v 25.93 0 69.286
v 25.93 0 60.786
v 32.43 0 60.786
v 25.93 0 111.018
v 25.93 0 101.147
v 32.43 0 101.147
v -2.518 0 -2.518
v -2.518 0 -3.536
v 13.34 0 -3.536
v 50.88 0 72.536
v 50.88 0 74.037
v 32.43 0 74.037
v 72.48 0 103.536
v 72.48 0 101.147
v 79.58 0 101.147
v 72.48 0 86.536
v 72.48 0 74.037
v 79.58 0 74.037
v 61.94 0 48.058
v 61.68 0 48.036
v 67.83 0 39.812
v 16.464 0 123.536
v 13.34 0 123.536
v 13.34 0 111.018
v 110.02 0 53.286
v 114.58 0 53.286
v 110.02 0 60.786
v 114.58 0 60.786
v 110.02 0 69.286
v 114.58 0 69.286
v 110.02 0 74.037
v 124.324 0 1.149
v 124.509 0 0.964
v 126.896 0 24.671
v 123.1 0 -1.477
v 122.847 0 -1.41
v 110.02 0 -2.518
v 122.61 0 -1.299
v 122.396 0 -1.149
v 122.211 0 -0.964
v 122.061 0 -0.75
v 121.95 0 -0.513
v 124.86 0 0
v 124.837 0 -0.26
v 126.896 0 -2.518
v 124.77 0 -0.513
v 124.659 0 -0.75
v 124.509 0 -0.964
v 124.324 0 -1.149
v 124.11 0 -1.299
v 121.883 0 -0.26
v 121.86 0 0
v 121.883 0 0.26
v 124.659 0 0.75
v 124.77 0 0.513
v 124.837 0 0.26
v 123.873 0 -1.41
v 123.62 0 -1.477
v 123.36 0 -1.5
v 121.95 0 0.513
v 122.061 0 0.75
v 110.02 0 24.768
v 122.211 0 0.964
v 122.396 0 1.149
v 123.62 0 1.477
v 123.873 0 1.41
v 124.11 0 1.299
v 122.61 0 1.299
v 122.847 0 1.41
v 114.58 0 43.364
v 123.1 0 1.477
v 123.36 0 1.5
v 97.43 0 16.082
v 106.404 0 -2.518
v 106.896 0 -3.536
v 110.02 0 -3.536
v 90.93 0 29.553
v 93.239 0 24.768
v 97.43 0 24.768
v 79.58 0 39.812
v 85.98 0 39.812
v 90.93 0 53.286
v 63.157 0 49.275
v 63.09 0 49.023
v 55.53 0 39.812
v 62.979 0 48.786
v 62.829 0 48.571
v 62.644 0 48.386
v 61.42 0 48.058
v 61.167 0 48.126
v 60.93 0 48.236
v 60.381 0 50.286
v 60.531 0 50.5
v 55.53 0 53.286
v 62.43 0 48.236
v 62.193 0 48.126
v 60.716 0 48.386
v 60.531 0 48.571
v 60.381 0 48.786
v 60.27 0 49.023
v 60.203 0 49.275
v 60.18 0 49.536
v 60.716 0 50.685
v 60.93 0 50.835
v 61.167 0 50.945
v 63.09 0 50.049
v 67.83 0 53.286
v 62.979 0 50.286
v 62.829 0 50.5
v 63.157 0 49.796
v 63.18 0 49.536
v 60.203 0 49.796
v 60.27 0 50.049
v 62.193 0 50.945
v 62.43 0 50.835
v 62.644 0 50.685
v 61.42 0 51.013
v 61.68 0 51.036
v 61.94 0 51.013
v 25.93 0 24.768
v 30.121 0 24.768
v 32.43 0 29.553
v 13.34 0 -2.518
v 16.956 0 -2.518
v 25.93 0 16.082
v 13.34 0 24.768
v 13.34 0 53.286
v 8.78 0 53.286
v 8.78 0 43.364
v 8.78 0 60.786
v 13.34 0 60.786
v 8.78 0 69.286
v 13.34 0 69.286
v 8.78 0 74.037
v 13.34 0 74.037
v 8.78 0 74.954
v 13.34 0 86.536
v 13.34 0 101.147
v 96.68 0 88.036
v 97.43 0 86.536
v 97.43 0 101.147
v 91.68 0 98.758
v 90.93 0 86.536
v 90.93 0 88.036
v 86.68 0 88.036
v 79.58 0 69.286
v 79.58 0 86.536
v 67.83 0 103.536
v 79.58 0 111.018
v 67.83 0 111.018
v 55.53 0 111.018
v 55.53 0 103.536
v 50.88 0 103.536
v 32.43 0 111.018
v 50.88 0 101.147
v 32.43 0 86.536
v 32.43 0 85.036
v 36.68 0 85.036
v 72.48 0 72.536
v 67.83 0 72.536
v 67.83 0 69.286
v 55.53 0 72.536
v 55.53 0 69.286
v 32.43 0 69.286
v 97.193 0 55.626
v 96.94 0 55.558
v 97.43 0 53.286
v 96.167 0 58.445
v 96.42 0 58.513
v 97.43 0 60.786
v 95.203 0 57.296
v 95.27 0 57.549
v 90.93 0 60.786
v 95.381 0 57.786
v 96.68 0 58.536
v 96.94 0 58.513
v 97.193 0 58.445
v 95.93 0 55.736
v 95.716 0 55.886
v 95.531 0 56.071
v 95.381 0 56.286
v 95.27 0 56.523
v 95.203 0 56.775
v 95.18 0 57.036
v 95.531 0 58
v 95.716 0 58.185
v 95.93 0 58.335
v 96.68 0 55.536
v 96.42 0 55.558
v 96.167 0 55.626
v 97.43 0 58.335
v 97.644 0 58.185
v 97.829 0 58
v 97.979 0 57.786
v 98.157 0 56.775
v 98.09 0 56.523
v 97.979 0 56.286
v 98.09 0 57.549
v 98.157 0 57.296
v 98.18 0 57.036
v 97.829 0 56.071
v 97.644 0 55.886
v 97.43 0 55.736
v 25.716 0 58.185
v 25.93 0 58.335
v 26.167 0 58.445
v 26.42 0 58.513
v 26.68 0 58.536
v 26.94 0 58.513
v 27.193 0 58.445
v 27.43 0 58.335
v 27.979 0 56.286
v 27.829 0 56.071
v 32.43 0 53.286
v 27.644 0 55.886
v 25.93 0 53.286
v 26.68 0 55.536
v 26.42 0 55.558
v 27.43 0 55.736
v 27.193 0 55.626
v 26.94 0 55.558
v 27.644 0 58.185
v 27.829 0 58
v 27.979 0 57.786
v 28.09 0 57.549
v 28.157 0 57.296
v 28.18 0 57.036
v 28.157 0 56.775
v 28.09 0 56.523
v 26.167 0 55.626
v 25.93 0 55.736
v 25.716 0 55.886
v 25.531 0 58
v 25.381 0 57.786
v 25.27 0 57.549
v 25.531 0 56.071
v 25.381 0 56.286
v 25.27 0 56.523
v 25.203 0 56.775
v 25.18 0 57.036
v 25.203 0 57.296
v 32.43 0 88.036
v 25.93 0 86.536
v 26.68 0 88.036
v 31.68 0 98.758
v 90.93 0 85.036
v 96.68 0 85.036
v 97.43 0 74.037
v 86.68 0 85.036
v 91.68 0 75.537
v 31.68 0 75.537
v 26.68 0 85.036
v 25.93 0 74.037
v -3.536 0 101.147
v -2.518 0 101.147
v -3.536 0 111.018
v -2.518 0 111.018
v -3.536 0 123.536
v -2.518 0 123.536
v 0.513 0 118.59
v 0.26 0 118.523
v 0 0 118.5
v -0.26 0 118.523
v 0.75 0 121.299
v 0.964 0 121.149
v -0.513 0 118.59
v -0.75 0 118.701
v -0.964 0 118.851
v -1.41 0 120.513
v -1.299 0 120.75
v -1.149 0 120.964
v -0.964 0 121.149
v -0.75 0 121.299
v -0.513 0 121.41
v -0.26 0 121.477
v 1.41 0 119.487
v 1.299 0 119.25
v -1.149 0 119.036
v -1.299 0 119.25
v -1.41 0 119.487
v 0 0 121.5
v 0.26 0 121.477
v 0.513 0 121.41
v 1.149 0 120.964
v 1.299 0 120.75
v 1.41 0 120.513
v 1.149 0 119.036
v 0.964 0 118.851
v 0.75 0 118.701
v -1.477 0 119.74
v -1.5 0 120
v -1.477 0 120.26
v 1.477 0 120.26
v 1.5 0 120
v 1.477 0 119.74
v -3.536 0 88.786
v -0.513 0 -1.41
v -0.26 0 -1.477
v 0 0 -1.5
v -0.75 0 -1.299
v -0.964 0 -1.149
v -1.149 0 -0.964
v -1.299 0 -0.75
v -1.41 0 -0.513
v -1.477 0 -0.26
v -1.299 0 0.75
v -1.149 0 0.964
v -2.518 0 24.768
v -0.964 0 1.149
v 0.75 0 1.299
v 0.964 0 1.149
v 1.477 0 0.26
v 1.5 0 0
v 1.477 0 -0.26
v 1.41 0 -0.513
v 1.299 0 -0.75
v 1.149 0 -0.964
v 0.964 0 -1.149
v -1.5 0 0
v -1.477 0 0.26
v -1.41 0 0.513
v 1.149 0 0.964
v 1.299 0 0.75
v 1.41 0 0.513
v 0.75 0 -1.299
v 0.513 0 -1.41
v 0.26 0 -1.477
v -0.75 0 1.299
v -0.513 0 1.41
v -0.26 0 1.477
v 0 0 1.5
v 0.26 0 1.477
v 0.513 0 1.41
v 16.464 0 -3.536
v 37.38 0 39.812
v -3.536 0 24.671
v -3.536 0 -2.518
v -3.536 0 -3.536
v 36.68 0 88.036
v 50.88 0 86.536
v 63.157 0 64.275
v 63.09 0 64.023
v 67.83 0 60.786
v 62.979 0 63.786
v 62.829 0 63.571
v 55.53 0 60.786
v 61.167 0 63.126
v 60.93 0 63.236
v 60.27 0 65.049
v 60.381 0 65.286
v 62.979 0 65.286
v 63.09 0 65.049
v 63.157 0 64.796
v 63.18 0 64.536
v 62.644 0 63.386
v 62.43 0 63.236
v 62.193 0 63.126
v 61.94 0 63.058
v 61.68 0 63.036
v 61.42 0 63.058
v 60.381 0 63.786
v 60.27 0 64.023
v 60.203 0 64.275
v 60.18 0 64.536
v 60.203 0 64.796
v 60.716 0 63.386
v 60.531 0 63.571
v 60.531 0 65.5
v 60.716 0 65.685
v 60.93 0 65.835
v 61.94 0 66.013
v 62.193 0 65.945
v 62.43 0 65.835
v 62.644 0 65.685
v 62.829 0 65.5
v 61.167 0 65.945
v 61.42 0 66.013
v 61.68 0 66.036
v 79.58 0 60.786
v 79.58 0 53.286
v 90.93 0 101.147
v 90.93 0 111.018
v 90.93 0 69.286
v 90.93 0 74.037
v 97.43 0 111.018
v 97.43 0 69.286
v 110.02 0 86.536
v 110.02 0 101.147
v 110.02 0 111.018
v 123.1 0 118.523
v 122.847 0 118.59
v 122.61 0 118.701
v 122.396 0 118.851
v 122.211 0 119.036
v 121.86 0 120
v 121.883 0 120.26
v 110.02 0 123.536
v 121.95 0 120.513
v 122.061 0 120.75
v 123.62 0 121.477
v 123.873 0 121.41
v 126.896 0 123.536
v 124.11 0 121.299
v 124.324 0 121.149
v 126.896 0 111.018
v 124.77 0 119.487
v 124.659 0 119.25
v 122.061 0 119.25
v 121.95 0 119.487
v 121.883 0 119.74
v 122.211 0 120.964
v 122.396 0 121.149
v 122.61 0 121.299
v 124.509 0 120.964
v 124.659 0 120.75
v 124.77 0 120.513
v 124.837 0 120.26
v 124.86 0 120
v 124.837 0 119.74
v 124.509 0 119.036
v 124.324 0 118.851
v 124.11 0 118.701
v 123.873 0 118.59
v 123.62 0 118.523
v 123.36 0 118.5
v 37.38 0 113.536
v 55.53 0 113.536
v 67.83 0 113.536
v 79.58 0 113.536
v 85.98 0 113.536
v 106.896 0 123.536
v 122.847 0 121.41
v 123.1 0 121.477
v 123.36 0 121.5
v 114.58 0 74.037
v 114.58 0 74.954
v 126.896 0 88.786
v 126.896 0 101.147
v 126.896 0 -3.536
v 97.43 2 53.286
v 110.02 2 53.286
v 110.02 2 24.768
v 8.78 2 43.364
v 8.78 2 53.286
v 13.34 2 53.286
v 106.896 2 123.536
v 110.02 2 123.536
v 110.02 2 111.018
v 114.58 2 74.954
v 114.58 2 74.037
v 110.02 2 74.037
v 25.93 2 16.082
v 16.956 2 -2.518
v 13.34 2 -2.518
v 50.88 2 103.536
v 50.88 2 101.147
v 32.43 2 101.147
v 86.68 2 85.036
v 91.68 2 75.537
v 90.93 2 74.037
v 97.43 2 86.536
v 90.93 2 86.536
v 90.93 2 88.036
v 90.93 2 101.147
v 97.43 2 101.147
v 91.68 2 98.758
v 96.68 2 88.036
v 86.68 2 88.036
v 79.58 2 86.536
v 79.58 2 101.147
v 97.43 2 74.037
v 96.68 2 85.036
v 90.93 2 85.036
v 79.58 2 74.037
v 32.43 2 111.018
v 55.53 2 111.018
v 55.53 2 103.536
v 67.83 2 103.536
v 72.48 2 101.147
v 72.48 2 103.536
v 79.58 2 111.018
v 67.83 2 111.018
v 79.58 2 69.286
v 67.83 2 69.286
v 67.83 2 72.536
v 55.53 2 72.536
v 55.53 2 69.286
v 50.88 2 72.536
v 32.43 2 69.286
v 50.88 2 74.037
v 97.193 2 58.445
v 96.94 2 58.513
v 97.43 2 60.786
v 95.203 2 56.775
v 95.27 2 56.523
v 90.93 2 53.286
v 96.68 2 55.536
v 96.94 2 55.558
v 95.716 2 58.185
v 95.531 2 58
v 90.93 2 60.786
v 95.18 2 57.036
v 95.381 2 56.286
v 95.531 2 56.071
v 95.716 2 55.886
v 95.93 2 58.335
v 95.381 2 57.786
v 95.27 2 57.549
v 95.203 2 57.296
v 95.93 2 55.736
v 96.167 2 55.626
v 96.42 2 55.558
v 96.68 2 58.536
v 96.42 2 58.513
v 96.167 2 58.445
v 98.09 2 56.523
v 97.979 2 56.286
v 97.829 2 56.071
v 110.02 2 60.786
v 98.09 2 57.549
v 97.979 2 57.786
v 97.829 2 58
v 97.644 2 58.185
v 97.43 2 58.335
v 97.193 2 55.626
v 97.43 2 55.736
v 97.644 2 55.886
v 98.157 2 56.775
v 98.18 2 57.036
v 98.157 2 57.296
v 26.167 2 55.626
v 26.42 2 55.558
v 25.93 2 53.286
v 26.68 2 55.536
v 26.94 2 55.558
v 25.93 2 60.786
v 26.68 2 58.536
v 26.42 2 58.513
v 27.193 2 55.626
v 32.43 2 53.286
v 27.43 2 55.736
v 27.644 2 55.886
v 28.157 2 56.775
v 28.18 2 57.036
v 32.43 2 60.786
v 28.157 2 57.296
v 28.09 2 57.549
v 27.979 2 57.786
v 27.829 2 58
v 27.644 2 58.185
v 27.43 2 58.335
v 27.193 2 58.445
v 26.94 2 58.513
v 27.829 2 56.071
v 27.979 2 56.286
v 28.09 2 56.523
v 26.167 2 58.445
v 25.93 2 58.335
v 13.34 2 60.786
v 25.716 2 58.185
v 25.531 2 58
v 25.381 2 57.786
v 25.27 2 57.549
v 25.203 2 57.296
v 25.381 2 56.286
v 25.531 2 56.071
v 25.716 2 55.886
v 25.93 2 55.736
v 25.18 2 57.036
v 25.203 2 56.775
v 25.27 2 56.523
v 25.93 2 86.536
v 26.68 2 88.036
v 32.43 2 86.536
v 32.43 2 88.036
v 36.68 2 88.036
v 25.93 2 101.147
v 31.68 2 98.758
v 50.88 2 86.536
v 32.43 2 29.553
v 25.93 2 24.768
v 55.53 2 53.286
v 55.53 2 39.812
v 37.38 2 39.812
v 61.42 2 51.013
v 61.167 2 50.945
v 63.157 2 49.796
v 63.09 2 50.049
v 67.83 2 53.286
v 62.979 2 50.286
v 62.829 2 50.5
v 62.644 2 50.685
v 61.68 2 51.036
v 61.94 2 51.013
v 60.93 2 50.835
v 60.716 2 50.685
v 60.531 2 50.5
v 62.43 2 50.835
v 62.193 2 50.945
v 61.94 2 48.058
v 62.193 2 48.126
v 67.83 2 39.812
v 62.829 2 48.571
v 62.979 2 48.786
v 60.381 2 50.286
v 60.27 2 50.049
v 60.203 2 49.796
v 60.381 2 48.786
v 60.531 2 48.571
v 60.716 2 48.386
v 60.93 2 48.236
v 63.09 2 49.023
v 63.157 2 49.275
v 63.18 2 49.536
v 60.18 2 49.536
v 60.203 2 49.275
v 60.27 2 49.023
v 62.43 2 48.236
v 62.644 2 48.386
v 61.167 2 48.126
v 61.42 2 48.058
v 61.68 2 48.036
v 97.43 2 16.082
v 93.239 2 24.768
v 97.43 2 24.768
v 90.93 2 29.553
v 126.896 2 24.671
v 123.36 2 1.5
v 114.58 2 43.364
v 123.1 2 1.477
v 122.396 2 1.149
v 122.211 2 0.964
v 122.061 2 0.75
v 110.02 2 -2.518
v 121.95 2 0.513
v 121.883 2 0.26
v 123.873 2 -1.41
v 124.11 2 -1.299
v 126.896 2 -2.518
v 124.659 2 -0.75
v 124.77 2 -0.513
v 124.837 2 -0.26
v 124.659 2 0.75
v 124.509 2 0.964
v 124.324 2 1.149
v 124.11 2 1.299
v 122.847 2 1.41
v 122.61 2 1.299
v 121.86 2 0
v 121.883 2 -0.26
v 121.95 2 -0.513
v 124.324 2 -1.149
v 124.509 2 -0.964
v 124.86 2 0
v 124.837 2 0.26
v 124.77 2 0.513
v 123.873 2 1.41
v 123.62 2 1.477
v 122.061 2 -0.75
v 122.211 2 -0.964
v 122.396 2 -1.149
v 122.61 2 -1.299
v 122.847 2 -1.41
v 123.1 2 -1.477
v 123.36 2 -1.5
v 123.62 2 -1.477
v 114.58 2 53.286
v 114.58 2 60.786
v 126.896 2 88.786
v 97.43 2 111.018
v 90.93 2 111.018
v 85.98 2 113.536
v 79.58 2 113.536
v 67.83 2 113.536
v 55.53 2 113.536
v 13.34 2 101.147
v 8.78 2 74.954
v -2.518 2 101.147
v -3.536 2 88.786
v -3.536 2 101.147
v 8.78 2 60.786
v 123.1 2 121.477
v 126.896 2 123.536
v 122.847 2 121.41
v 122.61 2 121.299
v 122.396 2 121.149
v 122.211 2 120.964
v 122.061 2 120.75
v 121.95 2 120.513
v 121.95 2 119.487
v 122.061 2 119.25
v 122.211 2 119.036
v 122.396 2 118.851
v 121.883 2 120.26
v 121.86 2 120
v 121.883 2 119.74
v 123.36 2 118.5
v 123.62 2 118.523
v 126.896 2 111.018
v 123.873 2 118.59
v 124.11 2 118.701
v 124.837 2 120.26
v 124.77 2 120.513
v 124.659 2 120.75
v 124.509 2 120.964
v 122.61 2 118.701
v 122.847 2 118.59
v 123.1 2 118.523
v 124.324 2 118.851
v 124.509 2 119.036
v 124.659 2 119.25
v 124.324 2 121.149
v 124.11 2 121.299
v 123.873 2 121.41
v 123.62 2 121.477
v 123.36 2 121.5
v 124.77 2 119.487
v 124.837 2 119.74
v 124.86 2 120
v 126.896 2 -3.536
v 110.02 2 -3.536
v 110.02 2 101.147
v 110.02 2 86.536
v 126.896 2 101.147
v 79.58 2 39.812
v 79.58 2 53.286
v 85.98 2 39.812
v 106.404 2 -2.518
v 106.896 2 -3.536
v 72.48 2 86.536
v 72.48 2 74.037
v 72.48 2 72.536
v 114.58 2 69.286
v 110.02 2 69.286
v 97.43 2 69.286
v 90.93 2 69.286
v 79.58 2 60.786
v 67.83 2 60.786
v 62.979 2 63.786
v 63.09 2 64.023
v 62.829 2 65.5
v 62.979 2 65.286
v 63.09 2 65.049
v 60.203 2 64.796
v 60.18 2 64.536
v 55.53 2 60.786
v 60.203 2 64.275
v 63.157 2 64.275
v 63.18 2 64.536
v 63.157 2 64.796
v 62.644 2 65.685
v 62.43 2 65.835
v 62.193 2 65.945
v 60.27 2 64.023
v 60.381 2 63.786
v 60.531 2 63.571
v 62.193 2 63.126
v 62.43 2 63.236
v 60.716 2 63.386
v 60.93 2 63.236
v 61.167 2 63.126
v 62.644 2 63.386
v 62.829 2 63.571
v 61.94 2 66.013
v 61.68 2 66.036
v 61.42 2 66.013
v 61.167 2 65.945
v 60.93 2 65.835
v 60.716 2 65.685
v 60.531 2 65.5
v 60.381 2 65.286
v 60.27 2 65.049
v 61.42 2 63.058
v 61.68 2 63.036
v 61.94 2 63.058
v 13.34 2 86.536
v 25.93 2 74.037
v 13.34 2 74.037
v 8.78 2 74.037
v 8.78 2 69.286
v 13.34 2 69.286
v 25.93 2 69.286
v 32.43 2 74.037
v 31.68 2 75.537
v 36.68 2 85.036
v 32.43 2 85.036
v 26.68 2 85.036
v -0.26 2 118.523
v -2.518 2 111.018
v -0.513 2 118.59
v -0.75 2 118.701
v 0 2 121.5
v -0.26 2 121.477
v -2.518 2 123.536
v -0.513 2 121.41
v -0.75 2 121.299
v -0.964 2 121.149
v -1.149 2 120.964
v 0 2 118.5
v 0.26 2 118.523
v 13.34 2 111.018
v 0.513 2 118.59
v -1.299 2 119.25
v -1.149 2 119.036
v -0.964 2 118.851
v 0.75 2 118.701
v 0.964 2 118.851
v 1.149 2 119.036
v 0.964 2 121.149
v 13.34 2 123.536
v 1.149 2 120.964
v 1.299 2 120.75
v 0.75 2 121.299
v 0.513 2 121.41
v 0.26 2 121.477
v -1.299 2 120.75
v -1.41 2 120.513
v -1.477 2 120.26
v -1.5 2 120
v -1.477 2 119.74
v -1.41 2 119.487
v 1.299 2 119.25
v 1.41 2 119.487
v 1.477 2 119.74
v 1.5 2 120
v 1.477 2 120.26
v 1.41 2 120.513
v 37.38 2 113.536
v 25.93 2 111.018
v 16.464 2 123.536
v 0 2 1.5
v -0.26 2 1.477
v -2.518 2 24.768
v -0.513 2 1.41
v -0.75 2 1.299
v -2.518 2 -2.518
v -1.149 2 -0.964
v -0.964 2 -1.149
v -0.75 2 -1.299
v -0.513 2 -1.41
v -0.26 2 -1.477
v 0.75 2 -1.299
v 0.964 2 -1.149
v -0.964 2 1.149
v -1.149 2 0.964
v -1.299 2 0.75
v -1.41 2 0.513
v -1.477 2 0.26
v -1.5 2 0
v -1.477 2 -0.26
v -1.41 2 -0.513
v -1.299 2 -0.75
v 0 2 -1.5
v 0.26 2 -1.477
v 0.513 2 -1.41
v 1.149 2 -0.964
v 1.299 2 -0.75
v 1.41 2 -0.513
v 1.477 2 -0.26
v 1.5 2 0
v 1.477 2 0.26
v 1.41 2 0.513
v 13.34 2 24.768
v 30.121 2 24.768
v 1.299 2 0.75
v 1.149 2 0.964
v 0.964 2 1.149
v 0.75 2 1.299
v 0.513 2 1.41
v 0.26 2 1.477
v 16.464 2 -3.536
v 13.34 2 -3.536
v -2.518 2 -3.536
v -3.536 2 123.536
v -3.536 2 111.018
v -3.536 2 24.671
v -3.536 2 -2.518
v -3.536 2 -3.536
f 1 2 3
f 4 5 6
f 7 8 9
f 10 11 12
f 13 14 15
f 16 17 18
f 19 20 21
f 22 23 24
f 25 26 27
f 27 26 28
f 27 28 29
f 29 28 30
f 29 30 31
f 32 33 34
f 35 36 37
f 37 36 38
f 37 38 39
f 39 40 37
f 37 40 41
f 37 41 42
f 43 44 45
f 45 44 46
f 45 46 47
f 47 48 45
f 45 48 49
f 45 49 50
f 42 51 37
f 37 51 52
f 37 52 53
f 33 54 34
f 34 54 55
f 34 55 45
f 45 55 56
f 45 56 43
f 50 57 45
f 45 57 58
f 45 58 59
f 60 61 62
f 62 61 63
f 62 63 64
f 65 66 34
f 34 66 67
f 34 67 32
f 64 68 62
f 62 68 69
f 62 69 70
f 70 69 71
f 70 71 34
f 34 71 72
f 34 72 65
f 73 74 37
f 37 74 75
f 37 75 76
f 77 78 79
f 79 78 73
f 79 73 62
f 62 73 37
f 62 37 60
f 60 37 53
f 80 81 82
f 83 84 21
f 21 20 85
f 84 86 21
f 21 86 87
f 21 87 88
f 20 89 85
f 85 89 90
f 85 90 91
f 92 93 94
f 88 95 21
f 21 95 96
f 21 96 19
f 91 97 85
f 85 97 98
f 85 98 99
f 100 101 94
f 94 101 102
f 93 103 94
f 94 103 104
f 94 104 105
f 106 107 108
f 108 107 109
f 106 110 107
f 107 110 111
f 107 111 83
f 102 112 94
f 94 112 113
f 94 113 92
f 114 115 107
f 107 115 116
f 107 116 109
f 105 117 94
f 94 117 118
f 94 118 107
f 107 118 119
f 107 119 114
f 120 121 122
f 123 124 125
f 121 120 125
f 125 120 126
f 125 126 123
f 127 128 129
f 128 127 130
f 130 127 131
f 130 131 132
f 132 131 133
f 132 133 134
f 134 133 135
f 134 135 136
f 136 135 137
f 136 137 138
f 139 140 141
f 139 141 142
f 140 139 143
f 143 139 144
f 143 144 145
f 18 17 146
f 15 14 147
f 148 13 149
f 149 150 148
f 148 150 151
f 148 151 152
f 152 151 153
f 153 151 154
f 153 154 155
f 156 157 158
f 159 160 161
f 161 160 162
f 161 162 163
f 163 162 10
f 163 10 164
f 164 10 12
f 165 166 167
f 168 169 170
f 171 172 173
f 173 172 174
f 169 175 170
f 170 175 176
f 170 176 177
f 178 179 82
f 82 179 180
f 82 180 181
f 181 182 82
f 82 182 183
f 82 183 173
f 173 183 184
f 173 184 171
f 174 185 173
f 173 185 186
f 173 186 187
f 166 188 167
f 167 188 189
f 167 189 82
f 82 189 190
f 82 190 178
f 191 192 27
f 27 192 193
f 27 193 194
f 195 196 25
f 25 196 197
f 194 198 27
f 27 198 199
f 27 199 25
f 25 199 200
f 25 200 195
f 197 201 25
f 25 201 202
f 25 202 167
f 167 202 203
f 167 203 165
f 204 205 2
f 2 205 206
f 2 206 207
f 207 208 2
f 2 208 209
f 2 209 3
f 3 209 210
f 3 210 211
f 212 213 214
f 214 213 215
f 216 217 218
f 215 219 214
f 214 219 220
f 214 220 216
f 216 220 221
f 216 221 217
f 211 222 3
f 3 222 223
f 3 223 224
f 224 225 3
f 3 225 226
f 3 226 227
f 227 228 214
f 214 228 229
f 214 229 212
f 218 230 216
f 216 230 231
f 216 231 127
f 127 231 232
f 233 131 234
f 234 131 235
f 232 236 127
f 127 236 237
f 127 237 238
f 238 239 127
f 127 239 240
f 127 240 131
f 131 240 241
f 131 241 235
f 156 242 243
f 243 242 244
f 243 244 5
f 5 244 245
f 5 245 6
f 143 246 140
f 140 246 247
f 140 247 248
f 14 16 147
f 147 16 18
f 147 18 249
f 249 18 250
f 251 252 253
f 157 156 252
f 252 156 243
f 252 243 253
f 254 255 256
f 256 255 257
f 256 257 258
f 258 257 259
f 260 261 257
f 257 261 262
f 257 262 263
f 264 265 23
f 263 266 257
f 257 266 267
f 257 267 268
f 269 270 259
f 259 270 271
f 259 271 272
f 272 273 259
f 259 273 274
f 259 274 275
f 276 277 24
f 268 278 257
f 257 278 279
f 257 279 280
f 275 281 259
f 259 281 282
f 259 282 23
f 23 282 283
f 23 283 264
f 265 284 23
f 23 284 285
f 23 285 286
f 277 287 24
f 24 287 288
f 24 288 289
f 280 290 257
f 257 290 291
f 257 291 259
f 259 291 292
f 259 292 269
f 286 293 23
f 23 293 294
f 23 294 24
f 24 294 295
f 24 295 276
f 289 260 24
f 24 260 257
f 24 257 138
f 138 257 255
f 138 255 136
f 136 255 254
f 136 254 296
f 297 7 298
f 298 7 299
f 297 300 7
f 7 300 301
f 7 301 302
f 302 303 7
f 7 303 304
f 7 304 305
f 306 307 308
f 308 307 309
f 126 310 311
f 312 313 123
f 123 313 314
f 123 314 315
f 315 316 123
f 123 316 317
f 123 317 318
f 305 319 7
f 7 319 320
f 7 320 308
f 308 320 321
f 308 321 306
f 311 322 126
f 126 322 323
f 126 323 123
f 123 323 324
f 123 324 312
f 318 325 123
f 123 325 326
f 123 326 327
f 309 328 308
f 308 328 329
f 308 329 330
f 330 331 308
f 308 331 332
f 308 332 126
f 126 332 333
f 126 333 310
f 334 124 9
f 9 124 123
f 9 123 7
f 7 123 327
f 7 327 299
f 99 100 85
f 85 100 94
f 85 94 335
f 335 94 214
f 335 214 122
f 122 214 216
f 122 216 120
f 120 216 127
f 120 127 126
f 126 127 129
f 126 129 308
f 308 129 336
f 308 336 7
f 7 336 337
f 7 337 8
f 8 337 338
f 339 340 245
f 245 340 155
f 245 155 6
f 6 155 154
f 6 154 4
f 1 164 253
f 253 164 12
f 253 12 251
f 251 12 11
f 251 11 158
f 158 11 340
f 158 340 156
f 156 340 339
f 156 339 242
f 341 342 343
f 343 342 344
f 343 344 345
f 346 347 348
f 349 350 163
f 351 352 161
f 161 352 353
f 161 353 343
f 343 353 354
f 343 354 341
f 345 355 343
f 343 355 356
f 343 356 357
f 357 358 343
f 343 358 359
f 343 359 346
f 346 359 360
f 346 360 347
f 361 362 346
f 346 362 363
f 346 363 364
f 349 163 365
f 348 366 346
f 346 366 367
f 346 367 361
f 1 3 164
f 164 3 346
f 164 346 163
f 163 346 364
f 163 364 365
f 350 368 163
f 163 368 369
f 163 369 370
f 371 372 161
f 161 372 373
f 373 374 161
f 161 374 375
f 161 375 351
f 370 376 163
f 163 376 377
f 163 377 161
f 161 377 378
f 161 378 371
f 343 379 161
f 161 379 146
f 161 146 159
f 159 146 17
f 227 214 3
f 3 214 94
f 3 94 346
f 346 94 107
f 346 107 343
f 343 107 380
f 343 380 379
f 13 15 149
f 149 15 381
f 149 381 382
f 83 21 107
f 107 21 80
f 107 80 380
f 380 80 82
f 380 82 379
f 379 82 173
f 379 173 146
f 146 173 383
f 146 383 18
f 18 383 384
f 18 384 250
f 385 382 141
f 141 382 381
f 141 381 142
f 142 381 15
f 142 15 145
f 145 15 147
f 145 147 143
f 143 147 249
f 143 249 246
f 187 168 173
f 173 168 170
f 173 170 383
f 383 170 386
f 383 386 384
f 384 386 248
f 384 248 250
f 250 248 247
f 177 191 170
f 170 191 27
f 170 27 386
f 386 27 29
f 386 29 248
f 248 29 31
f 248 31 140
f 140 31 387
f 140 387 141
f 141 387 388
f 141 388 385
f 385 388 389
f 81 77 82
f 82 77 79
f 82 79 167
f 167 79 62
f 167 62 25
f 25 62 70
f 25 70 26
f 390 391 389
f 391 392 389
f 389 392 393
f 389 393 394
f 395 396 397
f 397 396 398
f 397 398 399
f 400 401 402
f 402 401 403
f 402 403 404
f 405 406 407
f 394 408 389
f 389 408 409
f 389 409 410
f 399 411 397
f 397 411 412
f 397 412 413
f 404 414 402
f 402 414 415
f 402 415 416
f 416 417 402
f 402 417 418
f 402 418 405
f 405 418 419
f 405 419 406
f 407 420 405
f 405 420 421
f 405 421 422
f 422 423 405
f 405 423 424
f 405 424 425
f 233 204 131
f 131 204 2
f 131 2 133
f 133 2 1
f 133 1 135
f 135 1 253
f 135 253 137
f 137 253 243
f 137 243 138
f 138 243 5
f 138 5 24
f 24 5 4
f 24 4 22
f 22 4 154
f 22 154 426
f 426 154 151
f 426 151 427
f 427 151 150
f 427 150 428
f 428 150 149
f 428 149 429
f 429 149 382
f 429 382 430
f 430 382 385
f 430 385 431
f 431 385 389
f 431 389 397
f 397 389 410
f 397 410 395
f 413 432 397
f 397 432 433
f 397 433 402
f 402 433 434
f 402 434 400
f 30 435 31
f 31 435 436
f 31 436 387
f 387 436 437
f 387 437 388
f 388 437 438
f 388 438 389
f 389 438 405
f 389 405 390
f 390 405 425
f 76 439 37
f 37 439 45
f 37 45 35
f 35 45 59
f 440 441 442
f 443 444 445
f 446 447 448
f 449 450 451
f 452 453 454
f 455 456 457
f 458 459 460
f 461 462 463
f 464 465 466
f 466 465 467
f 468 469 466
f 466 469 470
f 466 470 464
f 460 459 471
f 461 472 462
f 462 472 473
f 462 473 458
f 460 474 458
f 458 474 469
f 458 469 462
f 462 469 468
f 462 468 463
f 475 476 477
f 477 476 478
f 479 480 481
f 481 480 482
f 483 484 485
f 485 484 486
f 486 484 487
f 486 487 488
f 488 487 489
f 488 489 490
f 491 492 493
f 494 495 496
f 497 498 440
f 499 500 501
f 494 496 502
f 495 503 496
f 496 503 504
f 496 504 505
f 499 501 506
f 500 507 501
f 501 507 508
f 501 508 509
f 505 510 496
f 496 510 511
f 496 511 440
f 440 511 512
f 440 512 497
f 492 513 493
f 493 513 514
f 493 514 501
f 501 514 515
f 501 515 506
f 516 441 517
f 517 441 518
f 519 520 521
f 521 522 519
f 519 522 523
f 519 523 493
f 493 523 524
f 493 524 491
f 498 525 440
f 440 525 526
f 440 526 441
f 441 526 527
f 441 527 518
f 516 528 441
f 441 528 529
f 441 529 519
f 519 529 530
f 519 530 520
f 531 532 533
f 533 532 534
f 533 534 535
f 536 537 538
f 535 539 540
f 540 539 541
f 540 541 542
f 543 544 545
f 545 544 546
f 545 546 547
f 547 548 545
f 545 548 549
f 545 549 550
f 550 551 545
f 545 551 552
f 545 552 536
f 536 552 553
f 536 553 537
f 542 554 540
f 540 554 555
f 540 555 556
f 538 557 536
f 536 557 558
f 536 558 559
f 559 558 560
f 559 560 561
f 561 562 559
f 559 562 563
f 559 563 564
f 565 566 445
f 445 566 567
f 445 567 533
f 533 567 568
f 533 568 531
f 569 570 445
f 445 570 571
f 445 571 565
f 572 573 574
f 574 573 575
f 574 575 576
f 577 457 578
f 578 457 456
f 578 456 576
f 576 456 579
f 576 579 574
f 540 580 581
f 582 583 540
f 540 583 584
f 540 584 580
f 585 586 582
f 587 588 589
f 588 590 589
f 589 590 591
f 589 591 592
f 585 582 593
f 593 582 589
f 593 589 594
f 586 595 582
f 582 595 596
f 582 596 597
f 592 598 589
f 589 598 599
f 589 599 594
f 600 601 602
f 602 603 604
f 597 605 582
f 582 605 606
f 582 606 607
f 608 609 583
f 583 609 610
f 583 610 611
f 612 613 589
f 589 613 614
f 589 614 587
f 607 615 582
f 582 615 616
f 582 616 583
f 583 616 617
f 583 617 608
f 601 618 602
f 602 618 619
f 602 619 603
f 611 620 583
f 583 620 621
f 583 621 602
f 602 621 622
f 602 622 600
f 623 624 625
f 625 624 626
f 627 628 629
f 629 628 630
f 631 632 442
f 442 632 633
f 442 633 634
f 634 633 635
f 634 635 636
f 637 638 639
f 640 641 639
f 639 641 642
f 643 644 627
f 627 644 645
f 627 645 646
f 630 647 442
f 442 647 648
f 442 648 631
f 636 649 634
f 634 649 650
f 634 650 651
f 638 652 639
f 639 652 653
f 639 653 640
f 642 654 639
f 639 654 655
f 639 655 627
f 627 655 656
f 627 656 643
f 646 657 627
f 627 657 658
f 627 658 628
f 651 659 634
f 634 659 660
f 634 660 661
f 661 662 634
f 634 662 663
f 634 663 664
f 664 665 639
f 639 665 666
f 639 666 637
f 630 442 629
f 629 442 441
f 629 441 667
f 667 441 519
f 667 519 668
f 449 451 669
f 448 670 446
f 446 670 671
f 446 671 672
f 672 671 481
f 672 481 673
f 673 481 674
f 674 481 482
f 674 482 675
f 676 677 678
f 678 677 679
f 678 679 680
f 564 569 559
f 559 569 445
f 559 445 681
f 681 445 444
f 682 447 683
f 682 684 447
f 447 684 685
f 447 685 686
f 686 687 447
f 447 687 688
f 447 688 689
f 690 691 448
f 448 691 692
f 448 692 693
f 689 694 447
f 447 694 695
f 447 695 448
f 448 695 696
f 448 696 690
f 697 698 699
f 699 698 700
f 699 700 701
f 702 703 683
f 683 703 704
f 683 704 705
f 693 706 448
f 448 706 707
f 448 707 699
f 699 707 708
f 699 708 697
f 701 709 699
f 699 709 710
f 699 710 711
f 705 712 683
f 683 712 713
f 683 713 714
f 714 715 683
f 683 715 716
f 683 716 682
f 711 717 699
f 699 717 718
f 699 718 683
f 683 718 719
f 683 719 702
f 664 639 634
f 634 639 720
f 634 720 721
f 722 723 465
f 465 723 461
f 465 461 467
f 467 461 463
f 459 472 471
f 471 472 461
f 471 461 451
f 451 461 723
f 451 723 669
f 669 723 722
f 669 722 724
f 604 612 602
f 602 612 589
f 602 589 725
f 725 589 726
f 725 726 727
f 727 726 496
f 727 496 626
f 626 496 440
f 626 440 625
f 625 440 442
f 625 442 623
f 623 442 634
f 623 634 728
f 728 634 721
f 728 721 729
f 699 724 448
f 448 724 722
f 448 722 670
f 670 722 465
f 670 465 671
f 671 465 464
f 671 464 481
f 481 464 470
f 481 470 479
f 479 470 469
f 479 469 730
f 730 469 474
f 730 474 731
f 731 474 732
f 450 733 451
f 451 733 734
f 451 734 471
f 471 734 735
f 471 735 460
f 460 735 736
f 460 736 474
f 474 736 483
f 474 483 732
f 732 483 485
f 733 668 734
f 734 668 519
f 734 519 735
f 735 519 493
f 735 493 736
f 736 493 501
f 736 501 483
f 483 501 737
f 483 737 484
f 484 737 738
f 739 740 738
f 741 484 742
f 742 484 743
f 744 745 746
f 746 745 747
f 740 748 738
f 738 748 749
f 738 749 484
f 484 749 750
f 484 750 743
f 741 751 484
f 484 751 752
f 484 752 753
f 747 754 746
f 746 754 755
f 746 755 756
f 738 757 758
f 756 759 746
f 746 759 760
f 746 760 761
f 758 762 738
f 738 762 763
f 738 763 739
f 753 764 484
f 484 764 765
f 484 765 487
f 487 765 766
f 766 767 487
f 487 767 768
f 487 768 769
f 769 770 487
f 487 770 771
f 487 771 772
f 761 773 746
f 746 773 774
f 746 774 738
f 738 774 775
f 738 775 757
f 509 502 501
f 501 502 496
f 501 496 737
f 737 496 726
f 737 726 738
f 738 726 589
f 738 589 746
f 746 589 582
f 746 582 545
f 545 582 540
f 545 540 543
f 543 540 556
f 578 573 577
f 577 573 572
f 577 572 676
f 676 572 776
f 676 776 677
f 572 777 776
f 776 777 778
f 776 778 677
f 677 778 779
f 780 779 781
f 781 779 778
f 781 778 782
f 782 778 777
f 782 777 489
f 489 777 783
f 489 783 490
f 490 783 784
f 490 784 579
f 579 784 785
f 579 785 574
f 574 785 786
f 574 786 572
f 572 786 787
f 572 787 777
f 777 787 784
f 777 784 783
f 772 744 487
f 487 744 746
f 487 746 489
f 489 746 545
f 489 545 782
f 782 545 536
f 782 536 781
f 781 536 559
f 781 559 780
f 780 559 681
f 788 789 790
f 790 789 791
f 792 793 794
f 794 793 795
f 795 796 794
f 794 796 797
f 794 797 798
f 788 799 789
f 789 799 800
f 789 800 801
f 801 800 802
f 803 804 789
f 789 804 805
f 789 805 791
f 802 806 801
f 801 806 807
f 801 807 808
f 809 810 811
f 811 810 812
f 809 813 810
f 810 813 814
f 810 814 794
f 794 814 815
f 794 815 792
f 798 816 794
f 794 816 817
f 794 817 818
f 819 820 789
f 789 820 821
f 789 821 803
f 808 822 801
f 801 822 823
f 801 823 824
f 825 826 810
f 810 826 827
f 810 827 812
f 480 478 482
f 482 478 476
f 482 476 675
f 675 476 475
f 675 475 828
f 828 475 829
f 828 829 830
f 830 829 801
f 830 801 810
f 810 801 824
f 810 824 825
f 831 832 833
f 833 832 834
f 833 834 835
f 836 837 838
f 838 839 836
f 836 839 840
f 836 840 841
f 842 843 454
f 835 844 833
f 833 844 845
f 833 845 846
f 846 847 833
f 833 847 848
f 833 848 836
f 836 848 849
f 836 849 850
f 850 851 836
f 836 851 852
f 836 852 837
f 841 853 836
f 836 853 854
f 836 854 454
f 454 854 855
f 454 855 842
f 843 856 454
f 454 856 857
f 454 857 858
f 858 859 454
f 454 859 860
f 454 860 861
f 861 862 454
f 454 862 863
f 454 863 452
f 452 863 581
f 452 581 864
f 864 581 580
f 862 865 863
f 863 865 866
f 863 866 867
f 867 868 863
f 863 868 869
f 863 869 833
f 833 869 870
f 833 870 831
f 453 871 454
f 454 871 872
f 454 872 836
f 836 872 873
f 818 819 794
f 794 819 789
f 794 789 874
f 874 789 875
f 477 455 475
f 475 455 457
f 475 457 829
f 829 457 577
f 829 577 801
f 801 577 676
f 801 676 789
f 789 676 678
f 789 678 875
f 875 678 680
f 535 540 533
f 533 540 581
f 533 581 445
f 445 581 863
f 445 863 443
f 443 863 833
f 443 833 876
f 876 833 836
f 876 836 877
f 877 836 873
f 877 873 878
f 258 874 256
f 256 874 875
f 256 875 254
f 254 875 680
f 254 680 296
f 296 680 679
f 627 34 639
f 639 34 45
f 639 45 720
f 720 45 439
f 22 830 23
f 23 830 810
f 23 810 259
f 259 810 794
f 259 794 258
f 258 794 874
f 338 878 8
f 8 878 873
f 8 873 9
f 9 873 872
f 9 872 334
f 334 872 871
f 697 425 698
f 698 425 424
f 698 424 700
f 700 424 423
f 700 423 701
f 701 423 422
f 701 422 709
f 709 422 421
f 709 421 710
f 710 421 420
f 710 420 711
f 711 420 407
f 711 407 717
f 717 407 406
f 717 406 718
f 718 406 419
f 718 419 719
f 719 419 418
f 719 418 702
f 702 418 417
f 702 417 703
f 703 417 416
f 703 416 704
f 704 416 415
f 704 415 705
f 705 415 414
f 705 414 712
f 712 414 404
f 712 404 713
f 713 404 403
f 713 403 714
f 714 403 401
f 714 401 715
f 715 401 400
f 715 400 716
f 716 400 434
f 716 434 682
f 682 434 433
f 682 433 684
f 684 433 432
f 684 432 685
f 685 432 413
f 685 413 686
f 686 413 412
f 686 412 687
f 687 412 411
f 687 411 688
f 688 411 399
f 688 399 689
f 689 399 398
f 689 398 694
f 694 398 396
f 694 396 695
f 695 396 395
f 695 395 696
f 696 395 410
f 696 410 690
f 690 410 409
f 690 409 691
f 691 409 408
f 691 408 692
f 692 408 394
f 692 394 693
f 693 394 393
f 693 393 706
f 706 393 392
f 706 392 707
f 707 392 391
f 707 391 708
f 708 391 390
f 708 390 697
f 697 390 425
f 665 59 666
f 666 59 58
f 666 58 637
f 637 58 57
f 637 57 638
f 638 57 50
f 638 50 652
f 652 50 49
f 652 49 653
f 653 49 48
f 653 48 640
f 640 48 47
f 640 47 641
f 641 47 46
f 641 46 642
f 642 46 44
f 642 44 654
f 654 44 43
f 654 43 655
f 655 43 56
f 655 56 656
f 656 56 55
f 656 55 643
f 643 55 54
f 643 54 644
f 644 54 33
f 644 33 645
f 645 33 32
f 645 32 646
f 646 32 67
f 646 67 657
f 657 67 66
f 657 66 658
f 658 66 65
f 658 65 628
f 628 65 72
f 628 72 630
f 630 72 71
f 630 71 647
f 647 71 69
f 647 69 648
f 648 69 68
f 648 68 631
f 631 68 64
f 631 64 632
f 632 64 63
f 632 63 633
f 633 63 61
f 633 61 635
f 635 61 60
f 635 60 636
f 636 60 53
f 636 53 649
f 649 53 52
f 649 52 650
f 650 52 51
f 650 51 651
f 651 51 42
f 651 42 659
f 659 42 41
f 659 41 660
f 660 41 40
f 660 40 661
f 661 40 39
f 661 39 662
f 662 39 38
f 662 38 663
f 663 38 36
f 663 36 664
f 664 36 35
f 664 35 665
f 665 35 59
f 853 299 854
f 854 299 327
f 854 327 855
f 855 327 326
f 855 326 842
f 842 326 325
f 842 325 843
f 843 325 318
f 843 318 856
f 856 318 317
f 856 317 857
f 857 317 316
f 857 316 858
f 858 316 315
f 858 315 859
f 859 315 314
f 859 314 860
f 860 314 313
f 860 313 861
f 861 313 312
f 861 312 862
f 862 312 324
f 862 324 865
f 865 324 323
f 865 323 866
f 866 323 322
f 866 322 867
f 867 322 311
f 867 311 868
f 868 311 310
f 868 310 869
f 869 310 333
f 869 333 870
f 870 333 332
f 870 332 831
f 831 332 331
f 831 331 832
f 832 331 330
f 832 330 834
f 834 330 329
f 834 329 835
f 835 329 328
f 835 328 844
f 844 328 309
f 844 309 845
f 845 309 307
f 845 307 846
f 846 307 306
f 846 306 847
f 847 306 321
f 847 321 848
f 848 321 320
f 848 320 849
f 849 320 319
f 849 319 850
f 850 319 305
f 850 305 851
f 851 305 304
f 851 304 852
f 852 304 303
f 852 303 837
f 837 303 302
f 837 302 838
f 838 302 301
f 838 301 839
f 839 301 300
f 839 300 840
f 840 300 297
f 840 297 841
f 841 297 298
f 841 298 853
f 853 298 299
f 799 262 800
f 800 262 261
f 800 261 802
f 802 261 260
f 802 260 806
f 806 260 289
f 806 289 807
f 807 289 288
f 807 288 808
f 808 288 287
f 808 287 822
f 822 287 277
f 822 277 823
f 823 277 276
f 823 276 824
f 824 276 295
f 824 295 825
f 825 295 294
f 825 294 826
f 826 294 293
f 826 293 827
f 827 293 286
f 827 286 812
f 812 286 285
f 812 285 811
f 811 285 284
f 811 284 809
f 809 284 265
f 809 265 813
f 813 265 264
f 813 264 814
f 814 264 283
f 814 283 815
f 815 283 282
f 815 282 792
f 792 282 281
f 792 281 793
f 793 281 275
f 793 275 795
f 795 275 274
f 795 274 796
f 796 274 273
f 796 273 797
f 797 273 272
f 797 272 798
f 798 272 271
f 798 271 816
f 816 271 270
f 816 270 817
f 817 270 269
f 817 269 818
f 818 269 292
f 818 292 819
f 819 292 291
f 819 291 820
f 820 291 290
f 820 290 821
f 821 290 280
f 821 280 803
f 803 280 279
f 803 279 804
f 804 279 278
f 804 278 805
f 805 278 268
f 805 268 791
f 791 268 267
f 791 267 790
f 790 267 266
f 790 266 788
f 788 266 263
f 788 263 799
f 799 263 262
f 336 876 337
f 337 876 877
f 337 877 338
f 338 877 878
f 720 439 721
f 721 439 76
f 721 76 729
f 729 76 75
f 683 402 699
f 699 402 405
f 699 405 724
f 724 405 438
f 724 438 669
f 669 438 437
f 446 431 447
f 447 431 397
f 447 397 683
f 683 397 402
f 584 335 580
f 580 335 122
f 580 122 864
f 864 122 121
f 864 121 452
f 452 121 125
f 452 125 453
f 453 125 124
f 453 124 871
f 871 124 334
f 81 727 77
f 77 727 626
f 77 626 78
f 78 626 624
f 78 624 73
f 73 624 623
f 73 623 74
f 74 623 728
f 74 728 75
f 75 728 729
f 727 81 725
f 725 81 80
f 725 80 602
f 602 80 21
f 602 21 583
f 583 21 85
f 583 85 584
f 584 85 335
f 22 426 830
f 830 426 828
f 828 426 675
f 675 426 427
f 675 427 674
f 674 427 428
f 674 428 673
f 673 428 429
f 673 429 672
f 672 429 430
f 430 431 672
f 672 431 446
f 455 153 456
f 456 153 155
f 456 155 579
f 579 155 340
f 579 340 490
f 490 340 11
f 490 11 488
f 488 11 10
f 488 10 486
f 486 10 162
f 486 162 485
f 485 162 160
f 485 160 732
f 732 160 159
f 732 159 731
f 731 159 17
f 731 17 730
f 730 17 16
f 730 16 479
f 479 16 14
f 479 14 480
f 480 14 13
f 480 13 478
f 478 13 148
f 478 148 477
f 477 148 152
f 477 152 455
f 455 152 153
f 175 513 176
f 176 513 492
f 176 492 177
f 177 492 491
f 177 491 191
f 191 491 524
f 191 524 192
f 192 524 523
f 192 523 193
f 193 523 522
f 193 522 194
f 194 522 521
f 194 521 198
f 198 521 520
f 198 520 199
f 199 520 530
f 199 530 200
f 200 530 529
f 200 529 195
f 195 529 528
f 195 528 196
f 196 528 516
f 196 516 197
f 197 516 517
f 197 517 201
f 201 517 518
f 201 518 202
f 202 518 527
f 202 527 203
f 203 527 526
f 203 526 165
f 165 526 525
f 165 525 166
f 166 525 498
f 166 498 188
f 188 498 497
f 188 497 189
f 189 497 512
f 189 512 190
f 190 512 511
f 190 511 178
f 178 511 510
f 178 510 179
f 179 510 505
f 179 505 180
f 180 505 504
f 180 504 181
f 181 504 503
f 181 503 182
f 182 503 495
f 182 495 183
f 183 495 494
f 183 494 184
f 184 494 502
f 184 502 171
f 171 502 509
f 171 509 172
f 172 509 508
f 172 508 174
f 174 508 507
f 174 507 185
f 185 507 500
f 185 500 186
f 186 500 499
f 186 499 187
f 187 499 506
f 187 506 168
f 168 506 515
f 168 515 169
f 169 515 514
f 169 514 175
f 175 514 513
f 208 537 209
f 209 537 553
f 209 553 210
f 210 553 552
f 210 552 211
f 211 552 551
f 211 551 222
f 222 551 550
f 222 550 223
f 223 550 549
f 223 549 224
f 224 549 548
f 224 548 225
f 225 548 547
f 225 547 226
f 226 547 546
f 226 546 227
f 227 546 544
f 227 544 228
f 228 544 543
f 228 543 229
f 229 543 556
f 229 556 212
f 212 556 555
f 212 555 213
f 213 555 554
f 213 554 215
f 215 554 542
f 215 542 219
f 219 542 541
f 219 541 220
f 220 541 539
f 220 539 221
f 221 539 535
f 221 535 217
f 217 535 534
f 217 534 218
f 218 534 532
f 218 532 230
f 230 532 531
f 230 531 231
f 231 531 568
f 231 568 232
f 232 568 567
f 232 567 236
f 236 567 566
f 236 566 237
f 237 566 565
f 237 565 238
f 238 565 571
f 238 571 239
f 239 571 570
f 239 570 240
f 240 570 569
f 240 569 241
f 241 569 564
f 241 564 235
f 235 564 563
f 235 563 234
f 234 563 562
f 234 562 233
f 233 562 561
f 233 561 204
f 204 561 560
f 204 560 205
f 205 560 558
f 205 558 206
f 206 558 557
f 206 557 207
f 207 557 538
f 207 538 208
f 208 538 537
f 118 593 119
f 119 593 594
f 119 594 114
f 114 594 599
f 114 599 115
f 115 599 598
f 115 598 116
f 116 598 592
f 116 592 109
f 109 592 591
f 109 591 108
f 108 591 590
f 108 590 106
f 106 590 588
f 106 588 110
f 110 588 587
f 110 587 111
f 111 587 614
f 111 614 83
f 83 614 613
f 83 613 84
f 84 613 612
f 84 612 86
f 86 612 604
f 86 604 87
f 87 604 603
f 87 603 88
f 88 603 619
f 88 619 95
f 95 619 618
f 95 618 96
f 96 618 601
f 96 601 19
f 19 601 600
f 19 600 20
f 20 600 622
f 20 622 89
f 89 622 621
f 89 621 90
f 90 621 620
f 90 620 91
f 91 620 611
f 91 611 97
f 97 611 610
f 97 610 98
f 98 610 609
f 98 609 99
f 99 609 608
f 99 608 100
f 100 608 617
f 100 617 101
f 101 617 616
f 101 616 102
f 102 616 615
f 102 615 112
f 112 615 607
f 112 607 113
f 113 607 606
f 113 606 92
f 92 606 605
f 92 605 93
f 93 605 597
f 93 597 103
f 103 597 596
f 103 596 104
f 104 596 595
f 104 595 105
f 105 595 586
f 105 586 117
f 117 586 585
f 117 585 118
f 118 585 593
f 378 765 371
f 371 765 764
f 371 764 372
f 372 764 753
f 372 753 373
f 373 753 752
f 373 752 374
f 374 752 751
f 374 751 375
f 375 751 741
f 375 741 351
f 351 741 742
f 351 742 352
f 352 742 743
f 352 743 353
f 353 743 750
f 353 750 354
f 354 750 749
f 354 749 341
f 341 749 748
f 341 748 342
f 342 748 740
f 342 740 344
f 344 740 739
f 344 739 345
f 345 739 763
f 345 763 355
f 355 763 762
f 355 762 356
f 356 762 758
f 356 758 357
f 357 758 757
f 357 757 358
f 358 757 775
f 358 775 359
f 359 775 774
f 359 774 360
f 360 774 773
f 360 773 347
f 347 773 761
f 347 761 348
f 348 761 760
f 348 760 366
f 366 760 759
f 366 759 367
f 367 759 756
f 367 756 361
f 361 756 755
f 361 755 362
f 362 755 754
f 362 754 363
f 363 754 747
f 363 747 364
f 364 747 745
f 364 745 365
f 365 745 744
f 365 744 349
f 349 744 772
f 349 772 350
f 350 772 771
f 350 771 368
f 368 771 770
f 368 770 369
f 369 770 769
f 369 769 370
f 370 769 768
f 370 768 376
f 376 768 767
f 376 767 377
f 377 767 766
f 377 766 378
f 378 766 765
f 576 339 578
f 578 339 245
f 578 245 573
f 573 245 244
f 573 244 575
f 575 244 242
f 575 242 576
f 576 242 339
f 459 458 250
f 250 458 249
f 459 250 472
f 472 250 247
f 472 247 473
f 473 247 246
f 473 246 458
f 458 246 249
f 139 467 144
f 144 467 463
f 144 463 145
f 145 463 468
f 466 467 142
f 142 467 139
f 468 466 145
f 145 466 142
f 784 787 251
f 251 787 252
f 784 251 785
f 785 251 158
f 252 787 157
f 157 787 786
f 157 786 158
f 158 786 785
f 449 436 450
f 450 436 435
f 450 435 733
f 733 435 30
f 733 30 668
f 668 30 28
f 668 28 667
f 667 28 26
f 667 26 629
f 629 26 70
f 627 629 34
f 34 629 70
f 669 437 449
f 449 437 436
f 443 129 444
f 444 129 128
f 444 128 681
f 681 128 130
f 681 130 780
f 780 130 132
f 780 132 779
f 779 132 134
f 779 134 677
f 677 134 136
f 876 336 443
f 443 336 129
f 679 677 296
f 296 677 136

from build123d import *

# Parameters (mm, degrees)
SKETCH1_W           = 130.431067812
SKETCH1_H           = 127.071067812
SKETCH1_R           = 1.5
BOSS_EXTRUDE1_DEPTH = 2
CUT_EXTRUDE2_DEPTH  = 2
CUT_EXTRUDE3_DEPTH  = 2
SKETCH5_W           = 21.6
SKETCH5_H           = 31
CUT_EXTRUDE4_DEPTH  = 10
SKETCH6_R           = 1.5
CUT_EXTRUDE5_DEPTH  = 10
CUT_EXTRUDE6_DEPTH  = 10
CUT_EXTRUDE7_DEPTH  = 10


with BuildPart() as part:
    # Sketch1 → Boss-Extrude1 (new body)
    with BuildSketch(Plane(origin=(0, 0, 0), x_dir=(1, 0, 0), z_dir=(0, 1, 0))):
        with Locations((61.68, -60)):
            Rectangle(SKETCH1_W, SKETCH1_H)
        with Locations((0, -120)):
            Circle(SKETCH1_R, mode=Mode.SUBTRACT)
        with Locations((123.36, -120)):
            Circle(SKETCH1_R, mode=Mode.SUBTRACT)
        with Locations((123.36, 0)):
            Circle(SKETCH1_R, mode=Mode.SUBTRACT)
        Circle(SKETCH1_R, mode=Mode.SUBTRACT)
    extrude(amount=BOSS_EXTRUDE1_DEPTH)

    # Sketch3 → Cut-Extrude2 (cut)
    with BuildSketch(Plane(origin=(0, 2, 0), x_dir=(1, 0, 0), z_dir=(0, 1, 0))):
        Polygon((16.464466094, 3.535533906), (106.895533906, 3.535533906), (85.98014536, -39.812186932), (37.37985464, -39.812186932), align=None)
    extrude(amount=-CUT_EXTRUDE2_DEPTH, mode=Mode.SUBTRACT)

    # Sketch4 → Cut-Extrude3 (cut)
    with BuildSketch(Plane(origin=(0, 2, 0), x_dir=(1, 0, 0), z_dir=(0, 1, 0))):
        Polygon((85.98014536, -113.535533906), (37.37985464, -113.535533906), (16.464466094, -123.535533906), (106.895533906, -123.535533906), align=None)
    extrude(amount=-CUT_EXTRUDE3_DEPTH, mode=Mode.SUBTRACT)

    # Sketch5 → Cut-Extrude4 (cut)
    with BuildSketch(Plane(origin=(0, 2, 0), x_dir=(1, 0, 0), z_dir=(0, 1, 0))):
        with Locations((61.68, -88.035533906)):
            Rectangle(SKETCH5_W, SKETCH5_H)
    extrude(amount=-CUT_EXTRUDE4_DEPTH, mode=Mode.SUBTRACT)

    # Sketch6 → Cut-Extrude5 (cut)
    with BuildSketch(Plane(origin=(0, 2, 0), x_dir=(1, 0, 0), z_dir=(0, 1, 0))):
        with Locations((61.68, -64.535533906)):
            Circle(SKETCH6_R)
        with Locations((61.68, -49.535533906)):
            Circle(SKETCH6_R)
        with Locations((26.68, -57.035533906)):
            Circle(SKETCH6_R)
        with Locations((96.68, -57.035533906)):
            Circle(SKETCH6_R)
    extrude(amount=-CUT_EXTRUDE5_DEPTH, mode=Mode.SUBTRACT)

    # Sketch7 → Cut-Extrude6 (cut)
    with BuildSketch(Plane(origin=(0, 2, 0), x_dir=(1, 0, 0), z_dir=(0, 1, 0))):
        Polygon((31.68, -98.75817479), (36.68, -88.035533906), (31.68, -88.035533906), (26.68, -88.035533906), align=None)
        Polygon((36.68, -85.035533906), (26.68, -85.035533906), (31.68, -75.537485709), align=None)
        Polygon((86.68, -88.035533906), (91.68, -88.035533906), (96.68, -88.035533906), (91.68, -98.75817479), align=None)
        Polygon((86.68, -85.035533906), (91.68, -75.537485709), (96.68, -85.035533906), align=None)
    extrude(amount=-CUT_EXTRUDE6_DEPTH, mode=Mode.SUBTRACT)

    # Sketch8 → Cut-Extrude7 (cut)
    with BuildSketch(Plane(origin=(0, 2, 0), x_dir=(1, 0, 0), z_dir=(0, 1, 0))):
        Polygon((8.780452794, -60), (8.780452794, -43.363746638), (-3.535533906, -24.671327131), (-3.535533906, -88.786326042), (8.780452794, -74.953935606), align=None)
        Polygon((114.579547206, -43.363746638), (126.895533906, -24.671327131), (126.895533906, -88.786326042), (114.579547206, -74.953935606), (114.579547206, -60), align=None)
    extrude(amount=-CUT_EXTRUDE7_DEPTH, mode=Mode.SUBTRACT)


solid = part.part
